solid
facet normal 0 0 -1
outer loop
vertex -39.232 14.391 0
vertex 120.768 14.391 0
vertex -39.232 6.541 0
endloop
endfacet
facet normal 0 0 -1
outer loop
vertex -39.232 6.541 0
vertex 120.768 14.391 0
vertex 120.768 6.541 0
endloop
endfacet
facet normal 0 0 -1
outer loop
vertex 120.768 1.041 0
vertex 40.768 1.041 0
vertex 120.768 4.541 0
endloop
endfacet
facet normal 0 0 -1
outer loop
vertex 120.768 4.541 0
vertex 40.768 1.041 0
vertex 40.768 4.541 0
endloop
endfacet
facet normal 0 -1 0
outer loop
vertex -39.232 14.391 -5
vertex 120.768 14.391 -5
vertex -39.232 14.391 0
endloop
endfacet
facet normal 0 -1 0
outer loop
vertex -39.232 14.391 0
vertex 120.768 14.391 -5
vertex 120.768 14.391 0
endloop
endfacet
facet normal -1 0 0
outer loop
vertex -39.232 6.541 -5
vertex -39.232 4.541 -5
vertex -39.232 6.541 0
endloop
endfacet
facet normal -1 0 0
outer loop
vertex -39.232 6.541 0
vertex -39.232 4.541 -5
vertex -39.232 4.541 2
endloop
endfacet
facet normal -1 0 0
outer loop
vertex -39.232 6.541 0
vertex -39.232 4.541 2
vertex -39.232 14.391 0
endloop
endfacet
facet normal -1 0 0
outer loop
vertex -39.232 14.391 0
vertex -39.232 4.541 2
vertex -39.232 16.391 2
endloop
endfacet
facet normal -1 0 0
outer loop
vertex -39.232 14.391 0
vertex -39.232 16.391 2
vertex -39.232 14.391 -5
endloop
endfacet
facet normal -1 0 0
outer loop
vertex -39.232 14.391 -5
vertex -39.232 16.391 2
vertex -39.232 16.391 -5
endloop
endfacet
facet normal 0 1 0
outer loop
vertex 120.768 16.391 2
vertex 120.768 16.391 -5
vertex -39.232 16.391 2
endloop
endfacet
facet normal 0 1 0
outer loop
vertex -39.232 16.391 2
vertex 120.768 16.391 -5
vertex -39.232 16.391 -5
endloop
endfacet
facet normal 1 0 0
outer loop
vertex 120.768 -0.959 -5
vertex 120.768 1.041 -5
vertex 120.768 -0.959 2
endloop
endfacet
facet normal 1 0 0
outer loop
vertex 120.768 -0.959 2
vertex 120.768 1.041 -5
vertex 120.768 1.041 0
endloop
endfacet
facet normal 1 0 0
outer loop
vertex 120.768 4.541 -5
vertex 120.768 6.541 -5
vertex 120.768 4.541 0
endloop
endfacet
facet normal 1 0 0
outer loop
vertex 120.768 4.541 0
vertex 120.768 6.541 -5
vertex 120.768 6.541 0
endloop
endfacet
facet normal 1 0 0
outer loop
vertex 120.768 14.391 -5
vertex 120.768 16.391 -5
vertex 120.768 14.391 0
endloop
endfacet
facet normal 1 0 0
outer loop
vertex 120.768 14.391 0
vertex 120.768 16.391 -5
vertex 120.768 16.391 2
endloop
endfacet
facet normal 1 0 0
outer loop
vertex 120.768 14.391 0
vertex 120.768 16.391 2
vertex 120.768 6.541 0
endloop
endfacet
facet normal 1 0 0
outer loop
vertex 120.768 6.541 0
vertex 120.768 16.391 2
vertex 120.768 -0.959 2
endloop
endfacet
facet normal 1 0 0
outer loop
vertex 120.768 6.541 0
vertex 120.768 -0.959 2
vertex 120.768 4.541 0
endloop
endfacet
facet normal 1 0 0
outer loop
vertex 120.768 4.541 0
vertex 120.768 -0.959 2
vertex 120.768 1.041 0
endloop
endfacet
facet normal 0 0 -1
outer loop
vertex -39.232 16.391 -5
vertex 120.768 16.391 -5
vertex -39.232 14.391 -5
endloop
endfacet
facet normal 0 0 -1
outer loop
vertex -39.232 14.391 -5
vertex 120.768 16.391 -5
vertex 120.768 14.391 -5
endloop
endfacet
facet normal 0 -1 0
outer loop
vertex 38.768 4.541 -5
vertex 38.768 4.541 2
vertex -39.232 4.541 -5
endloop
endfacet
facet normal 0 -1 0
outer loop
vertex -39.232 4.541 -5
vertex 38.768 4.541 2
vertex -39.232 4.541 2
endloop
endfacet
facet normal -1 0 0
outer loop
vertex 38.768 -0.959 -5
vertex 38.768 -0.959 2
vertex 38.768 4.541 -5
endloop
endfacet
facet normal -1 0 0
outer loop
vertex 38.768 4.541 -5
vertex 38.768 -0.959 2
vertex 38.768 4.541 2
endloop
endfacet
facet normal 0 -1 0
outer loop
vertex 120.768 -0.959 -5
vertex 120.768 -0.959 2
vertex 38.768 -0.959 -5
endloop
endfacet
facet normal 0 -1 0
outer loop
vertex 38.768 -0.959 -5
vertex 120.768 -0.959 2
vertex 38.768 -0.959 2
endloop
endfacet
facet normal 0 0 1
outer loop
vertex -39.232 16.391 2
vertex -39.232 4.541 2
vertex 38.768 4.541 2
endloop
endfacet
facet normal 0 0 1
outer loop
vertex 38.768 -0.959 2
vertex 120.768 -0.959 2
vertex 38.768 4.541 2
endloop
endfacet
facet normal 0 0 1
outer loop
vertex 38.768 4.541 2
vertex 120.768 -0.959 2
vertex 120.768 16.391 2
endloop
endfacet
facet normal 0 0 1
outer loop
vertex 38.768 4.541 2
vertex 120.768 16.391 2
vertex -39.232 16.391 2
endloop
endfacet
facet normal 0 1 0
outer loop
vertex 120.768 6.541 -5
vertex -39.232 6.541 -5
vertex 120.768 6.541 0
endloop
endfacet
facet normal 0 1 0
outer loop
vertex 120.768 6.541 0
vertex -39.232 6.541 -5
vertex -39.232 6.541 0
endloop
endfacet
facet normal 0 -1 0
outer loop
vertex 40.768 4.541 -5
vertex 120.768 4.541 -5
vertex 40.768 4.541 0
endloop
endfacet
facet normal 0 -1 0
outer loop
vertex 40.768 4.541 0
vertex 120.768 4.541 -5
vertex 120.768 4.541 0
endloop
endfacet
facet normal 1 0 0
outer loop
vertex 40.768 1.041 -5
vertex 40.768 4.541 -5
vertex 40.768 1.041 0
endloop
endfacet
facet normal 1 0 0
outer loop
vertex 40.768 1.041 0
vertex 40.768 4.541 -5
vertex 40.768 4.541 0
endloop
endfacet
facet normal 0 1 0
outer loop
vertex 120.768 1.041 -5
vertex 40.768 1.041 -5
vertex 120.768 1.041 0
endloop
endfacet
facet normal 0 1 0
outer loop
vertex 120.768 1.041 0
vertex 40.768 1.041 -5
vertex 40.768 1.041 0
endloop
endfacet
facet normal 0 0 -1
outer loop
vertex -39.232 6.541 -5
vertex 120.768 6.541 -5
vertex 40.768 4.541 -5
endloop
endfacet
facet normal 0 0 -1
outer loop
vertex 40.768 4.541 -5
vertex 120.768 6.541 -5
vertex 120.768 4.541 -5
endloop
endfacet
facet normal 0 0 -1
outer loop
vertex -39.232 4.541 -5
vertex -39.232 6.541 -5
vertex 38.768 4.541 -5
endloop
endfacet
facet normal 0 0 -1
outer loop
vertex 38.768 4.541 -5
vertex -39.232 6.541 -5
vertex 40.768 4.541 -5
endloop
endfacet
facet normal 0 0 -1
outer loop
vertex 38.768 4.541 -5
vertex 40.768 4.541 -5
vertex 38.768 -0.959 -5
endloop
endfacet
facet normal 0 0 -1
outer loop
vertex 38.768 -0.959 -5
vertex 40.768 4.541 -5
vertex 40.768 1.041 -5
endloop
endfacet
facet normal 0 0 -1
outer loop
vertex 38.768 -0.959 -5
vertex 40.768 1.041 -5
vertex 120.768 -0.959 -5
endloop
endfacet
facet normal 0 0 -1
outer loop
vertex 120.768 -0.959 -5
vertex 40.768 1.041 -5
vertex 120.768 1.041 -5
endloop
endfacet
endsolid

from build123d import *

# Parameters (mm, degrees)
ESBO_O1_W                = 160
ESBO_O1_H                = 2
ESBO_O1_W_2              = 80
RESSALTO_EXTRUS_O1_DEPTH = 5
ESBO_O1_3_W              = 160
ESBO_O1_3_H              = 7.85
ESBO_O1_3_W_2            = 80
ESBO_O1_3_H_2            = 3.5
ESBO_O1_3_H_3            = 2
RESSALTO_EXTRUS_O2_DEPTH = 2


with BuildPart() as part:
    # Esbo_o1 → Ressalto-extrus_o1 (new body)
    with BuildSketch(Plane.XY):
        with Locations((40.767792431, 15.391143911)):
            Rectangle(ESBO_O1_W, ESBO_O1_H)
        with Locations((40.767792431, 5.541143911)):
            Rectangle(ESBO_O1_W, ESBO_O1_H)
        with Locations((80.767792431, 0.041143911)):
            Rectangle(ESBO_O1_W_2, ESBO_O1_H)
        Polygon((40.767792431, 4.541143911), (38.767792431, 4.541143911), (38.767792431, -0.958856089), (40.767792431, -0.958856089), (40.767792431, 1.041143911), align=None)
    extrude(amount=-RESSALTO_EXTRUS_O1_DEPTH)

    # Esbo_o1_3 → Ressalto-extrus_o2 (add)
    with BuildSketch(Plane.XY):
        with Locations((40.767792431, 10.466143911)):
            Rectangle(ESBO_O1_3_W, ESBO_O1_3_H)
        with Locations((80.767792431, 2.791143911)):
            Rectangle(ESBO_O1_3_W_2, ESBO_O1_3_H_2)
        with Locations((40.767792431, 15.391143911)):
            Rectangle(ESBO_O1_3_W, ESBO_O1_3_H_3)
        with Locations((40.767792431, 5.541143911)):
            Rectangle(ESBO_O1_3_W, ESBO_O1_3_H_3)
        with Locations((80.767792431, 0.041143911)):
            Rectangle(ESBO_O1_3_W_2, ESBO_O1_3_H_3)
        Polygon((40.767792431, 4.541143911), (38.767792431, 4.541143911), (38.767792431, -0.958856089), (40.767792431, -0.958856089), (40.767792431, 1.041143911), align=None)
    extrude(amount=RESSALTO_EXTRUS_O2_DEPTH)


solid = part.part
